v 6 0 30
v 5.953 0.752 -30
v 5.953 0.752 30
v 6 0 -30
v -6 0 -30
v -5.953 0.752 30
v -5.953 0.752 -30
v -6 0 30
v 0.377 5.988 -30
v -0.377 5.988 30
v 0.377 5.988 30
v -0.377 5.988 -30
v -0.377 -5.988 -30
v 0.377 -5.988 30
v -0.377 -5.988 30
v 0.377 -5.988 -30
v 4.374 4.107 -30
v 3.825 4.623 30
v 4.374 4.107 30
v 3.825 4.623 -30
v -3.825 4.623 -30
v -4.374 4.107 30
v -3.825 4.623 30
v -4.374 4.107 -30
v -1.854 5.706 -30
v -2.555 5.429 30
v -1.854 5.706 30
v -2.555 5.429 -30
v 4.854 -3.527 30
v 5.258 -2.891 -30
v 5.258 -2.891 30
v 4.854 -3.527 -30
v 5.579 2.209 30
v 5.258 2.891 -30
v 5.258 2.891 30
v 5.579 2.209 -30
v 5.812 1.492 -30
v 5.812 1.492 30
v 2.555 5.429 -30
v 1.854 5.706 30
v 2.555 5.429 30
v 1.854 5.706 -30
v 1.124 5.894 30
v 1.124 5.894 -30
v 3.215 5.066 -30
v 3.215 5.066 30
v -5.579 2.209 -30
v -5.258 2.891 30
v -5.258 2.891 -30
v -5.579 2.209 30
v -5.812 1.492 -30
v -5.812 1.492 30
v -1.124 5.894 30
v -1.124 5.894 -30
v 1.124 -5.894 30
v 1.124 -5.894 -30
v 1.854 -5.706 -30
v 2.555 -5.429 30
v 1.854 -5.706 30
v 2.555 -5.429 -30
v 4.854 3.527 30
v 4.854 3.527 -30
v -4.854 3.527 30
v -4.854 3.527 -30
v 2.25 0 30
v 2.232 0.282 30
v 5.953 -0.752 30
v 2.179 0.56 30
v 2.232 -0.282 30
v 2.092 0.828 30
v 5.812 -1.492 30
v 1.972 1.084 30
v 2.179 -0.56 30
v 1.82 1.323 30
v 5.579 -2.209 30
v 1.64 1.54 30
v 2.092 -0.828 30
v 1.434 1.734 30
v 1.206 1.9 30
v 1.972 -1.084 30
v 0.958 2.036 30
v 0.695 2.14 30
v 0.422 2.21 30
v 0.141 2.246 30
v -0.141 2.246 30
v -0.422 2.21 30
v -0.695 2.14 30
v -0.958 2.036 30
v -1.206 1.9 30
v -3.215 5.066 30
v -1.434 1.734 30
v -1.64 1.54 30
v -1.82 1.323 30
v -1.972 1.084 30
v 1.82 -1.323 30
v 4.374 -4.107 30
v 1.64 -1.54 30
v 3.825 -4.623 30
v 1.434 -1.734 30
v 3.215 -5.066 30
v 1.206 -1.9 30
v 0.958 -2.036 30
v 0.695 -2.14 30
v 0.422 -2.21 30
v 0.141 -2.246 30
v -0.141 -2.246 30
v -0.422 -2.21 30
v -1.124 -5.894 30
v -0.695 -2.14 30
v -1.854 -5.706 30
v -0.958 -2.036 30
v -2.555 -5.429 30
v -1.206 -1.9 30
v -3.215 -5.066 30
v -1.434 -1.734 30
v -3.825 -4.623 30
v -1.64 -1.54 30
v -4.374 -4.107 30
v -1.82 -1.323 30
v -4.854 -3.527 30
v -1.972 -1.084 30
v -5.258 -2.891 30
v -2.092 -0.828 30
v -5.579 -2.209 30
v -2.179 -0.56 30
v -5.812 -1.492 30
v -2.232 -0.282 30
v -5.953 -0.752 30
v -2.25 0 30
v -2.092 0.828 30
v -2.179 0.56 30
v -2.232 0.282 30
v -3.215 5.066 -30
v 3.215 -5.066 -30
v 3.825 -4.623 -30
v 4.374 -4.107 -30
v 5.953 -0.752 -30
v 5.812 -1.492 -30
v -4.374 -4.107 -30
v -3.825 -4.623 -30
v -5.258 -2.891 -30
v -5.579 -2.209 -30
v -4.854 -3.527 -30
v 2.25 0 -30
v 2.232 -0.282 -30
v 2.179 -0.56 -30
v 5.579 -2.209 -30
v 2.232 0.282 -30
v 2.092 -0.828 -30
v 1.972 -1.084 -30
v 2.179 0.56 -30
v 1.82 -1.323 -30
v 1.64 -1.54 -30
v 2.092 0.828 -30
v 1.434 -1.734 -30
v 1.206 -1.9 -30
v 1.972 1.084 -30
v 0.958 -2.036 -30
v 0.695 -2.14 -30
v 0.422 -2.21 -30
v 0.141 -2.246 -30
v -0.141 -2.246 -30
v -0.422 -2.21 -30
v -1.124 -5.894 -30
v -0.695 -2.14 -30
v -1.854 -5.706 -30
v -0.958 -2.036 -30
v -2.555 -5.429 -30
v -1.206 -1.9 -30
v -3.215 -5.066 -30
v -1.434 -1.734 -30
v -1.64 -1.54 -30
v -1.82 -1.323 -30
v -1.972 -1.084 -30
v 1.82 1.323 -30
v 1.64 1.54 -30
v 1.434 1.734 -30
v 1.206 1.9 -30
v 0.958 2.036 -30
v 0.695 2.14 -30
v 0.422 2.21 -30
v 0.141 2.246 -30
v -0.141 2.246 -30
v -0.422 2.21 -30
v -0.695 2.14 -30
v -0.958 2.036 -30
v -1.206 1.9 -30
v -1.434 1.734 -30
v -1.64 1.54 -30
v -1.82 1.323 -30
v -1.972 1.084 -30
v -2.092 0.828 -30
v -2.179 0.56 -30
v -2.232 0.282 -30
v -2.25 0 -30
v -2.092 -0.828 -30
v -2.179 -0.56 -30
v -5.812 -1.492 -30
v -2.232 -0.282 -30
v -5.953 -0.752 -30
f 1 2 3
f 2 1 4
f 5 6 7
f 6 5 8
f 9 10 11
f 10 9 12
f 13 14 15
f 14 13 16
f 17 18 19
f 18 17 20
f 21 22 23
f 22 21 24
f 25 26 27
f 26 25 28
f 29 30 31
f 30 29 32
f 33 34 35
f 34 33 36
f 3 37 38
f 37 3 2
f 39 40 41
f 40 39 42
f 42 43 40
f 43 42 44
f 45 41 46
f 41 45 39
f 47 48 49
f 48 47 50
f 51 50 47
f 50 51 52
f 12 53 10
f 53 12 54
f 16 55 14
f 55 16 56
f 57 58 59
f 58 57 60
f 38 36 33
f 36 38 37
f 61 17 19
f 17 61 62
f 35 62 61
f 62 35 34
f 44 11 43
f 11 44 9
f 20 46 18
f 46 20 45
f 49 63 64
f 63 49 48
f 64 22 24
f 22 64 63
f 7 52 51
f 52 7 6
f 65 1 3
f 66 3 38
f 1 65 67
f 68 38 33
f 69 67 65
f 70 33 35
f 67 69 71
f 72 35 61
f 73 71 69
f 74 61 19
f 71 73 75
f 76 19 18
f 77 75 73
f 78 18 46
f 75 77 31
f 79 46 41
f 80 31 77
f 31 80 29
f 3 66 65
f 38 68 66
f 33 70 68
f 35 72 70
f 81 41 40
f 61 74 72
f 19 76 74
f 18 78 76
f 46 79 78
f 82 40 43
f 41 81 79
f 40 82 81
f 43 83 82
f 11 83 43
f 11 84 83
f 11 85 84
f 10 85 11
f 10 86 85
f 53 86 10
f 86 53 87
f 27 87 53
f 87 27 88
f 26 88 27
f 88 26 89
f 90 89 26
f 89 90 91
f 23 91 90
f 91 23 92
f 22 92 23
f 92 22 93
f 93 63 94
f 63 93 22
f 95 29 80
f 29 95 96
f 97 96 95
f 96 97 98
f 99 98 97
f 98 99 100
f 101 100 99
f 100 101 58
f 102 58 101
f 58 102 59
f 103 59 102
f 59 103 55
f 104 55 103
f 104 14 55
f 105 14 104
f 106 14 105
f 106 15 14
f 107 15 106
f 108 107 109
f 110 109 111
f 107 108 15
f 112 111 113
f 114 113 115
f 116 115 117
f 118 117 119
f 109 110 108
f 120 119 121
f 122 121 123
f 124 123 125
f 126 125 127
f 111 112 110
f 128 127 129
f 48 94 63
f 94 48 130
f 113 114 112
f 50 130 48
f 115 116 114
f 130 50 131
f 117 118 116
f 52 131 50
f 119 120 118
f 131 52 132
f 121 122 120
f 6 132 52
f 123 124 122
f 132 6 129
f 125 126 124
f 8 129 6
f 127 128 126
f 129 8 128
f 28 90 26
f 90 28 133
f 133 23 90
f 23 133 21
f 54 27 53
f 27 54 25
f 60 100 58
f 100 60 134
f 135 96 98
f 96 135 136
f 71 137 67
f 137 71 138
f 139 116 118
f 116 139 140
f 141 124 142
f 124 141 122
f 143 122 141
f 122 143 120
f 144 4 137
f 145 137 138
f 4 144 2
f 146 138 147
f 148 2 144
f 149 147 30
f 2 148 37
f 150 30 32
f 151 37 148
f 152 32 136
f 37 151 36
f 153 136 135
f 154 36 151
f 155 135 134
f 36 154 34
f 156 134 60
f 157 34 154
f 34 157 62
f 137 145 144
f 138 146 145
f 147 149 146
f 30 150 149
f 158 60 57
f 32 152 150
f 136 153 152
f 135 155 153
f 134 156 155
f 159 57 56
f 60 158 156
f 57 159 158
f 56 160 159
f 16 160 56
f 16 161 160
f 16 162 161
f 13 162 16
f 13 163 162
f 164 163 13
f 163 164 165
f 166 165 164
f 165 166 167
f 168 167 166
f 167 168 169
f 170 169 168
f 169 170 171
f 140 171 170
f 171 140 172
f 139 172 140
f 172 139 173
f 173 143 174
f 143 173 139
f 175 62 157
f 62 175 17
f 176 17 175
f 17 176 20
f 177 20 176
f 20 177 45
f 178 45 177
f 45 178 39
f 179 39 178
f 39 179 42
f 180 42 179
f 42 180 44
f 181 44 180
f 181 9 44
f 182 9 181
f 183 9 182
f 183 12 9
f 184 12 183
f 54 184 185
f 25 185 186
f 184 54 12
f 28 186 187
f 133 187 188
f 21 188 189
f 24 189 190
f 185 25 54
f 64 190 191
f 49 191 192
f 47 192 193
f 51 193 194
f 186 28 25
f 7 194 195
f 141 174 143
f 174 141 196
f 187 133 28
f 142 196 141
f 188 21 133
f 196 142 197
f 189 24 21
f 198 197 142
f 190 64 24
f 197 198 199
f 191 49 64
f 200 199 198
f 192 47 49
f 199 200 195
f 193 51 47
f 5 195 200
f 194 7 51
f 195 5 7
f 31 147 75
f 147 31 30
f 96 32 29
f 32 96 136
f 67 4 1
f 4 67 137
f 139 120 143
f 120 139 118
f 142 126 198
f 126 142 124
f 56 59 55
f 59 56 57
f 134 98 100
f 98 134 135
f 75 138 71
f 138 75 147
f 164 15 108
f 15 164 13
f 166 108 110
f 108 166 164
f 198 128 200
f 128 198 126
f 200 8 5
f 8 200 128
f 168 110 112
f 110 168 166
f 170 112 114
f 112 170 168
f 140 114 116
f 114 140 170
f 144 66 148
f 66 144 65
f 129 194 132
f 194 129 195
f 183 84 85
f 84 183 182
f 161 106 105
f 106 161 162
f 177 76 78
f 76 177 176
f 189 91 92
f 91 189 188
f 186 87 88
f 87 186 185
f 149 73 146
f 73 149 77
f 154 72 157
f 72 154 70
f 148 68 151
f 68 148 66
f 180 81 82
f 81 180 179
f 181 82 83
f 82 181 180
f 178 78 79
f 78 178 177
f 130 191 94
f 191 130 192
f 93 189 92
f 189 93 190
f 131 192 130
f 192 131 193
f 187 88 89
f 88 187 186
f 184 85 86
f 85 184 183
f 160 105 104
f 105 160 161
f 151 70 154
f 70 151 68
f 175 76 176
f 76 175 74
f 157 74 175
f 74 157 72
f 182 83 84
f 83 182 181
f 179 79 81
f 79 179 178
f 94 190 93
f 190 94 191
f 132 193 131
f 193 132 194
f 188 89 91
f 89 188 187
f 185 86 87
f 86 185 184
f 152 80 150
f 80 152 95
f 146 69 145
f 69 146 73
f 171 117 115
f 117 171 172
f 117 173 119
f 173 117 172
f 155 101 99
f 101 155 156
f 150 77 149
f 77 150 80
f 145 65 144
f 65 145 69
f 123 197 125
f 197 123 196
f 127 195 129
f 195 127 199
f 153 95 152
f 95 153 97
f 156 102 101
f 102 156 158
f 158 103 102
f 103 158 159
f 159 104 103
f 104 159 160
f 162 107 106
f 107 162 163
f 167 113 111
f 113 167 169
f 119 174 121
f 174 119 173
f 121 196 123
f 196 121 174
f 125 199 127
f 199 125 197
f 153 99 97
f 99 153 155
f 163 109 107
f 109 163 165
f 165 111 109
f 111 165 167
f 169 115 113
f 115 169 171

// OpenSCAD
$fn = 50;


difference() {
	union() {
		translate(v = [0, 0, -30.0000000000]) {
			cylinder(h = 60, r = 6.0000000000);
		}
	}
	union() {
		translate(v = [0, 0, -100.0000000000]) {
			cylinder(h = 200, r = 2.2500000000);
		}
	}
}
